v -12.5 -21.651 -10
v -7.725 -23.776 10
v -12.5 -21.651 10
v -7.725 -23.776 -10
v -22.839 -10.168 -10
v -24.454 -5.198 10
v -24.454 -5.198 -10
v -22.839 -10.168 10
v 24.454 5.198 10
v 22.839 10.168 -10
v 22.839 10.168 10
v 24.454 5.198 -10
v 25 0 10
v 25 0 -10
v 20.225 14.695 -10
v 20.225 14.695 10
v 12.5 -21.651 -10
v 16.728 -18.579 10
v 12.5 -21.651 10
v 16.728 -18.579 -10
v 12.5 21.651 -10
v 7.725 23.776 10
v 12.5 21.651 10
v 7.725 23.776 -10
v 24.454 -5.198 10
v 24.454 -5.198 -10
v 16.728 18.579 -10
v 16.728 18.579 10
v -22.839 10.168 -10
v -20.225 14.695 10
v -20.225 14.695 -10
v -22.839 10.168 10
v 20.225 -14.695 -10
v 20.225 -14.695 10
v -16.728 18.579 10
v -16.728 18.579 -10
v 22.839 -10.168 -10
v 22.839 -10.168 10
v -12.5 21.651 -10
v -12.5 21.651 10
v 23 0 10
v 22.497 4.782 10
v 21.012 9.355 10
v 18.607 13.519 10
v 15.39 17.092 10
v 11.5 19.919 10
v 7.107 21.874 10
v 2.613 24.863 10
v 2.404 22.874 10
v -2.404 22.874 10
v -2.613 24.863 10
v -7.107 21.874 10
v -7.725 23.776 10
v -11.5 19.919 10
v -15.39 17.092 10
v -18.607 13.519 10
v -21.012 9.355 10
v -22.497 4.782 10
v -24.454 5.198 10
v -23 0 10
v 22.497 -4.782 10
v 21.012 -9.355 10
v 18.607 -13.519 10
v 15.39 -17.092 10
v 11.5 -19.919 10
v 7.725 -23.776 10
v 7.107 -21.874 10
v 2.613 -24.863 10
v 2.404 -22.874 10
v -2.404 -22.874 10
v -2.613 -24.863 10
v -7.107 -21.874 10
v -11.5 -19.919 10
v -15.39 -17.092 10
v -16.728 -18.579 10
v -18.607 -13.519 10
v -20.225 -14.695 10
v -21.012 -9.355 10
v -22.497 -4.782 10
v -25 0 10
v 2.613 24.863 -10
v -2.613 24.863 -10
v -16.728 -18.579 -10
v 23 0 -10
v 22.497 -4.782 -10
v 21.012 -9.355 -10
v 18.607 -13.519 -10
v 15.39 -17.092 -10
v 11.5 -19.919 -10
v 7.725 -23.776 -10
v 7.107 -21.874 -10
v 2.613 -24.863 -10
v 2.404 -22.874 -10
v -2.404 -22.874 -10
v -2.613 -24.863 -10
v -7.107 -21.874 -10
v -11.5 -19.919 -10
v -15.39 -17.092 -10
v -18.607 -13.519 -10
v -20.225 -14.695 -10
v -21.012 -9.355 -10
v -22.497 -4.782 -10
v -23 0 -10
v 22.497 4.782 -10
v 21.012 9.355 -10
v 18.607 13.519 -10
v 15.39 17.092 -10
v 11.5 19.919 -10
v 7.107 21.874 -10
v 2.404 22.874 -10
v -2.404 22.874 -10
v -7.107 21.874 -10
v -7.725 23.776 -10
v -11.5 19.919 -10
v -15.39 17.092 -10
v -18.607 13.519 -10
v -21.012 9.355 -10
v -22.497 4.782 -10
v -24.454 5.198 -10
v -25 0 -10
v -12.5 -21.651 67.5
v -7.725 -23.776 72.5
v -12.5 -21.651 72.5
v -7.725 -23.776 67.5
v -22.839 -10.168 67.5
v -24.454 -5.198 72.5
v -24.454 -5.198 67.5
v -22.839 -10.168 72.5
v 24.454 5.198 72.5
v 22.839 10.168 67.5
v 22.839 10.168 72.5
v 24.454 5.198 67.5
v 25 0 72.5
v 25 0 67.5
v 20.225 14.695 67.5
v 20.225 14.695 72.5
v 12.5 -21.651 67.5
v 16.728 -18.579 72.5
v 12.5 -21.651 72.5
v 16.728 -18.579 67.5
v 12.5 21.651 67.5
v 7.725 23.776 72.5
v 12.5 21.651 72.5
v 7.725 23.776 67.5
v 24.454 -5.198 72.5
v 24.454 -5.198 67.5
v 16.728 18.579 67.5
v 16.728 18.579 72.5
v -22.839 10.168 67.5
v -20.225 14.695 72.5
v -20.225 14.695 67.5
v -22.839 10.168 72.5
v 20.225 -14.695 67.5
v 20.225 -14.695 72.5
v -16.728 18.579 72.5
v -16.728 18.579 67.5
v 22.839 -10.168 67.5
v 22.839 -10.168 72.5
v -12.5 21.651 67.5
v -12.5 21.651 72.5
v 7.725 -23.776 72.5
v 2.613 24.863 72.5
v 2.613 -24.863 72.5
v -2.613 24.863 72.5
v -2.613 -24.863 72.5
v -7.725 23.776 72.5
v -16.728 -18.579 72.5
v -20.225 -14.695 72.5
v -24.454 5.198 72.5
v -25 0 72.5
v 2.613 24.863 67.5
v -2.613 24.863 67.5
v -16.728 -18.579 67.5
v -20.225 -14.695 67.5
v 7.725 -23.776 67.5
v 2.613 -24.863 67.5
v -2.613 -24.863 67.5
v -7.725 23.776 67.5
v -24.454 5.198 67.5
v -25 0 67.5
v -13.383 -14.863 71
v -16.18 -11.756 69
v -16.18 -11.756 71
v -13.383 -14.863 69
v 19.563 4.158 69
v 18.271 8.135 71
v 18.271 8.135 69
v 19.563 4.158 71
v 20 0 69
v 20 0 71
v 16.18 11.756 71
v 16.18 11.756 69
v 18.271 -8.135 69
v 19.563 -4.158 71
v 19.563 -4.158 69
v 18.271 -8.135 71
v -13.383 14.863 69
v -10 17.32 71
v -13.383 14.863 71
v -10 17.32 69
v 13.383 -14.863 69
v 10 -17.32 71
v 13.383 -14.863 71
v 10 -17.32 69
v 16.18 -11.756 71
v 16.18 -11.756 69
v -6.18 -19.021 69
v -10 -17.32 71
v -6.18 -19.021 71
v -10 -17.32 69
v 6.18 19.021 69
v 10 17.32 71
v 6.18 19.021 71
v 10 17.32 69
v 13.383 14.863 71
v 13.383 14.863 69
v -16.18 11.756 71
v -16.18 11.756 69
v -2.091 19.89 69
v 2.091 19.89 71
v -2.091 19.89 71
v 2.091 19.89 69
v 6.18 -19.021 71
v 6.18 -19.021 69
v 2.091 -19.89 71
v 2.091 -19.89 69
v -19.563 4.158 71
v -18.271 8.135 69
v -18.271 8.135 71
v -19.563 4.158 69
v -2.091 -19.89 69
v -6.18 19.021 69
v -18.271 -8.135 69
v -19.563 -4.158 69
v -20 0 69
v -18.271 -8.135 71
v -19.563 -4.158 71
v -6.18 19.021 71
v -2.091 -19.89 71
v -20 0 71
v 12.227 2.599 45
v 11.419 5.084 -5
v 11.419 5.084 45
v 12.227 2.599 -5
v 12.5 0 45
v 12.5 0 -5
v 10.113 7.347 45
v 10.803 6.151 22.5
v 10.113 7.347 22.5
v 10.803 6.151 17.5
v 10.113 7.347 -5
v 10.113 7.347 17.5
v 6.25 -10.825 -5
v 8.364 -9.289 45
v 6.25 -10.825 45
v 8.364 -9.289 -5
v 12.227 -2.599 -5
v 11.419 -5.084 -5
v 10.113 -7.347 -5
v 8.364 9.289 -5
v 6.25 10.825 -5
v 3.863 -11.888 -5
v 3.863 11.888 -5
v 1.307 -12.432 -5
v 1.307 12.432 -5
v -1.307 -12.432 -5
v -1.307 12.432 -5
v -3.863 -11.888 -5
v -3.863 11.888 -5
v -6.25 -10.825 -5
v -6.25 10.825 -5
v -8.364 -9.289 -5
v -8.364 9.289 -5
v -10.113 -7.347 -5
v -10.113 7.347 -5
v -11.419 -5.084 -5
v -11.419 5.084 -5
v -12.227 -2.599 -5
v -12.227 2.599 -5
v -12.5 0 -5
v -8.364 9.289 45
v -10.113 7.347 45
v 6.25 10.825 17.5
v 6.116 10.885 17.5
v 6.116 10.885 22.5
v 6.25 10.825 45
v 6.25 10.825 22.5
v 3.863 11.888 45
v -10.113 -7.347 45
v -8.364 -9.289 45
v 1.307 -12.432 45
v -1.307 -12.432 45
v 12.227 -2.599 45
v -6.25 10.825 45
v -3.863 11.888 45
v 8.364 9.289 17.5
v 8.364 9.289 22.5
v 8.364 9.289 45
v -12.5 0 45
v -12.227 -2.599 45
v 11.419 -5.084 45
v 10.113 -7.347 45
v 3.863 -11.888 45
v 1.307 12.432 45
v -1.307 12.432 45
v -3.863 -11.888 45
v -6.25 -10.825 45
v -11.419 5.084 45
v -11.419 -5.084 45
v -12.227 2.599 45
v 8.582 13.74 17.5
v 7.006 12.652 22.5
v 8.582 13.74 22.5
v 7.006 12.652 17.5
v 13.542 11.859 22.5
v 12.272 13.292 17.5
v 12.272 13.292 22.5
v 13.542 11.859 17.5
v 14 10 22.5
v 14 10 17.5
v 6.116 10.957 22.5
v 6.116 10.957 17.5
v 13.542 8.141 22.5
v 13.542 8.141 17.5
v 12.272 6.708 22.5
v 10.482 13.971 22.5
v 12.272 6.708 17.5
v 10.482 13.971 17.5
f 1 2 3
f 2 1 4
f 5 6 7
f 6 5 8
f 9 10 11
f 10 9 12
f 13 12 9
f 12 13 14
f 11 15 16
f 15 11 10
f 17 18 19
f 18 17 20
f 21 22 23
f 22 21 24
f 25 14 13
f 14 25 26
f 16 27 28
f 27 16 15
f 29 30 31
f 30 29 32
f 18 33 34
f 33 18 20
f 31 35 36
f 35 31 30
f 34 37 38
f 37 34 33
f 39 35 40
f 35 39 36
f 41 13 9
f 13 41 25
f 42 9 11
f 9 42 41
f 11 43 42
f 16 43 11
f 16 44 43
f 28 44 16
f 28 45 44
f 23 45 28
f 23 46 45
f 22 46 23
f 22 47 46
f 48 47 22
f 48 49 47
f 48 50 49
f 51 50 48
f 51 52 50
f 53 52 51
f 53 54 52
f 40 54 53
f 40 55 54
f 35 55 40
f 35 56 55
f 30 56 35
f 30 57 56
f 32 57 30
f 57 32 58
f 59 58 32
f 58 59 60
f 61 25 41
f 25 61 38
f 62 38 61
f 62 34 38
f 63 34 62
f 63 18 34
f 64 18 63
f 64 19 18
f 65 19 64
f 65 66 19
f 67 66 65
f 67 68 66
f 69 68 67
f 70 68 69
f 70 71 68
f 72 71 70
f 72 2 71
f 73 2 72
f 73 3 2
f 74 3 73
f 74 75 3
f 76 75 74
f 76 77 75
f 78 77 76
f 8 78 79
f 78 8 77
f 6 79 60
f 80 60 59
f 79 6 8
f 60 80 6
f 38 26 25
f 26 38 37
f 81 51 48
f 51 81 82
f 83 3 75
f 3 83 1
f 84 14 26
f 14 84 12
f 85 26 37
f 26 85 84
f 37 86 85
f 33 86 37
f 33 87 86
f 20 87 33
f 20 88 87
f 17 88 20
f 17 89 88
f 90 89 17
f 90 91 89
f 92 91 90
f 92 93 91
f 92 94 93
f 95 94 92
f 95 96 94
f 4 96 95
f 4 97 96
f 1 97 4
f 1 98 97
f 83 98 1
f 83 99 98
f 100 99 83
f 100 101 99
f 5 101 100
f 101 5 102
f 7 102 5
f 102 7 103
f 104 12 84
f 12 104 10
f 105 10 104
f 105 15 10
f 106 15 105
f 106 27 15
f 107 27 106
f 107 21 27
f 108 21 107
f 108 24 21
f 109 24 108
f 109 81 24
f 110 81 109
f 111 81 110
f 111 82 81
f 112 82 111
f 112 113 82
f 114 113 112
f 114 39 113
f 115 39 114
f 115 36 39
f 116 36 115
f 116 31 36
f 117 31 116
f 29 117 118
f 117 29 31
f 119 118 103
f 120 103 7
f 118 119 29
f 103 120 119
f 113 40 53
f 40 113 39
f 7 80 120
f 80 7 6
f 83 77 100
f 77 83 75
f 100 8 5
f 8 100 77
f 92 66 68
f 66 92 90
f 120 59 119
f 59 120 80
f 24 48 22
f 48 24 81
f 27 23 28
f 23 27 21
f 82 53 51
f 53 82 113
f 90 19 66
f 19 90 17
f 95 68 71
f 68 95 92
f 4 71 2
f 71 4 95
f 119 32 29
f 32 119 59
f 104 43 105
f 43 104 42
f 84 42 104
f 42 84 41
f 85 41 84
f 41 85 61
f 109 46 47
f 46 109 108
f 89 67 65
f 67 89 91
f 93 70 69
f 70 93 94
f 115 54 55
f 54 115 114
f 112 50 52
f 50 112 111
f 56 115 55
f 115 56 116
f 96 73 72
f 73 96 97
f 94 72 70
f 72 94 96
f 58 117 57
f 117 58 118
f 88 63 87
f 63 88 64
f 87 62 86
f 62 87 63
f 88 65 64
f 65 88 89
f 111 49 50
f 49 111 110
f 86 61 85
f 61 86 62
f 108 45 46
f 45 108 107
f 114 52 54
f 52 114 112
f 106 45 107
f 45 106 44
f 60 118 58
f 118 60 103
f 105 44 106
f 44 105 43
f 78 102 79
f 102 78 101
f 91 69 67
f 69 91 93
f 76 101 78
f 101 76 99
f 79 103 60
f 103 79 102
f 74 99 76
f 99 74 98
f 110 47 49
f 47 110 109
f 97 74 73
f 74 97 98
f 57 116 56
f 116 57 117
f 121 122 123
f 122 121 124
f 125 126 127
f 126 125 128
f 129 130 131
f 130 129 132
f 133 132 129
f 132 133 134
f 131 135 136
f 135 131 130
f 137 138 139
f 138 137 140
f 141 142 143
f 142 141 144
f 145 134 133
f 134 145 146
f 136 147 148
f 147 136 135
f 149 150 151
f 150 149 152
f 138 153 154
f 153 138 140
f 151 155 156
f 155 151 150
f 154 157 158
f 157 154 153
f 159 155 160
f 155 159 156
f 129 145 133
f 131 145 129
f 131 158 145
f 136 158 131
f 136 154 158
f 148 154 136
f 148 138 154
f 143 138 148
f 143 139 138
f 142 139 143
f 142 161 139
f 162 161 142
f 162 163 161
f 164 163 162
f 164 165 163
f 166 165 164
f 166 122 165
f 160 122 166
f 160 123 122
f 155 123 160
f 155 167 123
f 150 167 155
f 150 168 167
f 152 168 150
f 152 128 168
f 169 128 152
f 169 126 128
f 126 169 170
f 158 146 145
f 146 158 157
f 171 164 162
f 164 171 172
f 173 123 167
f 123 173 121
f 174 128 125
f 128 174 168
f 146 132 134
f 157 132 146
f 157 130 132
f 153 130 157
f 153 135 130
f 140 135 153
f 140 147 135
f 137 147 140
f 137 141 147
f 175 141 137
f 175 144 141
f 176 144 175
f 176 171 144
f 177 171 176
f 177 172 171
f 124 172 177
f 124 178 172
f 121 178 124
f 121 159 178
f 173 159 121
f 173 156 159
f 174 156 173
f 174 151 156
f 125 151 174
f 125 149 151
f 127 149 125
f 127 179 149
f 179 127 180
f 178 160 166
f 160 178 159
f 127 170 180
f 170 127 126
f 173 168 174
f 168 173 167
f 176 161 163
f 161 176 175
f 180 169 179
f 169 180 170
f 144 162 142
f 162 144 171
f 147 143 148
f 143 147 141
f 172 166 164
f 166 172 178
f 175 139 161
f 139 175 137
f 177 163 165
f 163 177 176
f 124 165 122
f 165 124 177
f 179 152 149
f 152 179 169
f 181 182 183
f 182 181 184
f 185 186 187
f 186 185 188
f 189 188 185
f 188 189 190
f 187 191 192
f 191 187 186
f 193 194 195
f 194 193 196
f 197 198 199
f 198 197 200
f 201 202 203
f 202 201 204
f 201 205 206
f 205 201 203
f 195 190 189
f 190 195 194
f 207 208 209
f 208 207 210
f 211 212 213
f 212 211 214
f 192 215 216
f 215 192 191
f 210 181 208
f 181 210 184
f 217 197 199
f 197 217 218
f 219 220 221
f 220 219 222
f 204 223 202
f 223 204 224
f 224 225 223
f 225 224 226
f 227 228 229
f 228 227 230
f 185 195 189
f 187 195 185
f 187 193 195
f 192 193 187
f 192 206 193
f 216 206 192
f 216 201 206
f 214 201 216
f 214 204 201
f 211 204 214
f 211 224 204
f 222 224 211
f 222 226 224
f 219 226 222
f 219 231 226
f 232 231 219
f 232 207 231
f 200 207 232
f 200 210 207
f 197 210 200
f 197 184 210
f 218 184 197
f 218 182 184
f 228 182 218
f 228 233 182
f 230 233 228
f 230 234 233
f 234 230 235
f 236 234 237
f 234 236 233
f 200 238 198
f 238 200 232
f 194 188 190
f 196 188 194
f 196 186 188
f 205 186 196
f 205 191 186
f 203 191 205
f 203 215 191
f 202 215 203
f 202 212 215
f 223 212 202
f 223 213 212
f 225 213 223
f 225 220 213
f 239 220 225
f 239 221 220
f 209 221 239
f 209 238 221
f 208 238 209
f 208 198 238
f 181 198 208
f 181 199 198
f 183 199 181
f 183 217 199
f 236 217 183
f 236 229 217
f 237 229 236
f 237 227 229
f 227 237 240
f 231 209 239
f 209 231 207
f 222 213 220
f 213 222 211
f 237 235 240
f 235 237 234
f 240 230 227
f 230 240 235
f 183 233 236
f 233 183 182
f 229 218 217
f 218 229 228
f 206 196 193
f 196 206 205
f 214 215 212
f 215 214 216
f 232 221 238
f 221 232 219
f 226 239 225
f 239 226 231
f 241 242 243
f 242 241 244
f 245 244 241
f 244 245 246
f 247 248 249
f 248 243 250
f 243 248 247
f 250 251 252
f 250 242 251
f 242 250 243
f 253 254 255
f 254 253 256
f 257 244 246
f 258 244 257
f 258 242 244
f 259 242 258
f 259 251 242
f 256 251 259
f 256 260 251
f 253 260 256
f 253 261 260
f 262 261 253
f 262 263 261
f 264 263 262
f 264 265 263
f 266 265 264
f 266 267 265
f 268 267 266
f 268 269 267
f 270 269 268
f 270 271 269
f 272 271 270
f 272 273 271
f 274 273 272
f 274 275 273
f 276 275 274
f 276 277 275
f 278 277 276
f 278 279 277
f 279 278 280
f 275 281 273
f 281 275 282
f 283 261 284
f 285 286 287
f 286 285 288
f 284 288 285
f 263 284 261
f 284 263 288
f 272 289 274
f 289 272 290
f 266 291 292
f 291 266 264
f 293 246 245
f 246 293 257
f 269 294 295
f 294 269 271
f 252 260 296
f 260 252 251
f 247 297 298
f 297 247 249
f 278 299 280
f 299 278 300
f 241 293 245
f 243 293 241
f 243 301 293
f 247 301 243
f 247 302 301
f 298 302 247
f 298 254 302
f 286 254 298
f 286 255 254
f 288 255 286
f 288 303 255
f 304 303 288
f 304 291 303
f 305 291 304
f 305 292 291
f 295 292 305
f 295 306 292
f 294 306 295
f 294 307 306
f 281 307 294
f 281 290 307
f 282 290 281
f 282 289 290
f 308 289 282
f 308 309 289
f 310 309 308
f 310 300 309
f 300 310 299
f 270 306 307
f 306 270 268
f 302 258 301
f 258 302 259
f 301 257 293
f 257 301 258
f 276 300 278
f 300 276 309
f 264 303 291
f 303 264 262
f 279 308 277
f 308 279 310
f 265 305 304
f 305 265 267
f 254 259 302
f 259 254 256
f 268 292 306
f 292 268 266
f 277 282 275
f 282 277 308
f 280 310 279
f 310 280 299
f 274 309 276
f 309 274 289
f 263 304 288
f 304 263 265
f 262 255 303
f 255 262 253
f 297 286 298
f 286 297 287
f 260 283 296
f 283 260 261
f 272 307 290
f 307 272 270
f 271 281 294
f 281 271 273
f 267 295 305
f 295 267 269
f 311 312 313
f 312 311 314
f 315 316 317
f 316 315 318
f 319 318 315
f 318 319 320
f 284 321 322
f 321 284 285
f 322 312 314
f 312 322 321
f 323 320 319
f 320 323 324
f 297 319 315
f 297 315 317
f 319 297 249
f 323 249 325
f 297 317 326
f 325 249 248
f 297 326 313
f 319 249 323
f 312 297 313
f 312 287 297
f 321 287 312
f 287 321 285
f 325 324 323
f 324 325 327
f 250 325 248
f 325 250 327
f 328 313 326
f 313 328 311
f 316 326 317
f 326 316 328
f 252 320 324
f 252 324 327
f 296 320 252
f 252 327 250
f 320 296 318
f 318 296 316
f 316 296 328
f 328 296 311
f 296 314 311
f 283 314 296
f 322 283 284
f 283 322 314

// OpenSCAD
// Swivel Mount in OpenSCAD

// Parameters
arm_length = 50;
base_radius = 25;
base_height = 20;
hole_diameter = 8;
hole_offset_x = 10;
hole_offset_y = 10;
hole_depth = 5;

// Main Body
difference() {
  cylinder(h = base_height, r = base_radius, center = true);
  translate([0,0,-1]) cylinder(h = base_height + 2, r = base_radius - 2, center = true);
}

// Arm
translate([0, 0, base_height]) {
  cylinder(h = arm_length, r = base_radius / 2, center = true);
}

// Base
translate([0, 0, base_height + arm_length]) {
  difference() {
    cylinder(h = 5, r = base_radius, center = true);
    cylinder(h = 2, r = base_radius - 5, center = true);
  }
}

// Hole
translate([hole_offset_x, hole_offset_y, base_height]) {
  cylinder(h = 5, r = hole_diameter / 2, center = true);
}
